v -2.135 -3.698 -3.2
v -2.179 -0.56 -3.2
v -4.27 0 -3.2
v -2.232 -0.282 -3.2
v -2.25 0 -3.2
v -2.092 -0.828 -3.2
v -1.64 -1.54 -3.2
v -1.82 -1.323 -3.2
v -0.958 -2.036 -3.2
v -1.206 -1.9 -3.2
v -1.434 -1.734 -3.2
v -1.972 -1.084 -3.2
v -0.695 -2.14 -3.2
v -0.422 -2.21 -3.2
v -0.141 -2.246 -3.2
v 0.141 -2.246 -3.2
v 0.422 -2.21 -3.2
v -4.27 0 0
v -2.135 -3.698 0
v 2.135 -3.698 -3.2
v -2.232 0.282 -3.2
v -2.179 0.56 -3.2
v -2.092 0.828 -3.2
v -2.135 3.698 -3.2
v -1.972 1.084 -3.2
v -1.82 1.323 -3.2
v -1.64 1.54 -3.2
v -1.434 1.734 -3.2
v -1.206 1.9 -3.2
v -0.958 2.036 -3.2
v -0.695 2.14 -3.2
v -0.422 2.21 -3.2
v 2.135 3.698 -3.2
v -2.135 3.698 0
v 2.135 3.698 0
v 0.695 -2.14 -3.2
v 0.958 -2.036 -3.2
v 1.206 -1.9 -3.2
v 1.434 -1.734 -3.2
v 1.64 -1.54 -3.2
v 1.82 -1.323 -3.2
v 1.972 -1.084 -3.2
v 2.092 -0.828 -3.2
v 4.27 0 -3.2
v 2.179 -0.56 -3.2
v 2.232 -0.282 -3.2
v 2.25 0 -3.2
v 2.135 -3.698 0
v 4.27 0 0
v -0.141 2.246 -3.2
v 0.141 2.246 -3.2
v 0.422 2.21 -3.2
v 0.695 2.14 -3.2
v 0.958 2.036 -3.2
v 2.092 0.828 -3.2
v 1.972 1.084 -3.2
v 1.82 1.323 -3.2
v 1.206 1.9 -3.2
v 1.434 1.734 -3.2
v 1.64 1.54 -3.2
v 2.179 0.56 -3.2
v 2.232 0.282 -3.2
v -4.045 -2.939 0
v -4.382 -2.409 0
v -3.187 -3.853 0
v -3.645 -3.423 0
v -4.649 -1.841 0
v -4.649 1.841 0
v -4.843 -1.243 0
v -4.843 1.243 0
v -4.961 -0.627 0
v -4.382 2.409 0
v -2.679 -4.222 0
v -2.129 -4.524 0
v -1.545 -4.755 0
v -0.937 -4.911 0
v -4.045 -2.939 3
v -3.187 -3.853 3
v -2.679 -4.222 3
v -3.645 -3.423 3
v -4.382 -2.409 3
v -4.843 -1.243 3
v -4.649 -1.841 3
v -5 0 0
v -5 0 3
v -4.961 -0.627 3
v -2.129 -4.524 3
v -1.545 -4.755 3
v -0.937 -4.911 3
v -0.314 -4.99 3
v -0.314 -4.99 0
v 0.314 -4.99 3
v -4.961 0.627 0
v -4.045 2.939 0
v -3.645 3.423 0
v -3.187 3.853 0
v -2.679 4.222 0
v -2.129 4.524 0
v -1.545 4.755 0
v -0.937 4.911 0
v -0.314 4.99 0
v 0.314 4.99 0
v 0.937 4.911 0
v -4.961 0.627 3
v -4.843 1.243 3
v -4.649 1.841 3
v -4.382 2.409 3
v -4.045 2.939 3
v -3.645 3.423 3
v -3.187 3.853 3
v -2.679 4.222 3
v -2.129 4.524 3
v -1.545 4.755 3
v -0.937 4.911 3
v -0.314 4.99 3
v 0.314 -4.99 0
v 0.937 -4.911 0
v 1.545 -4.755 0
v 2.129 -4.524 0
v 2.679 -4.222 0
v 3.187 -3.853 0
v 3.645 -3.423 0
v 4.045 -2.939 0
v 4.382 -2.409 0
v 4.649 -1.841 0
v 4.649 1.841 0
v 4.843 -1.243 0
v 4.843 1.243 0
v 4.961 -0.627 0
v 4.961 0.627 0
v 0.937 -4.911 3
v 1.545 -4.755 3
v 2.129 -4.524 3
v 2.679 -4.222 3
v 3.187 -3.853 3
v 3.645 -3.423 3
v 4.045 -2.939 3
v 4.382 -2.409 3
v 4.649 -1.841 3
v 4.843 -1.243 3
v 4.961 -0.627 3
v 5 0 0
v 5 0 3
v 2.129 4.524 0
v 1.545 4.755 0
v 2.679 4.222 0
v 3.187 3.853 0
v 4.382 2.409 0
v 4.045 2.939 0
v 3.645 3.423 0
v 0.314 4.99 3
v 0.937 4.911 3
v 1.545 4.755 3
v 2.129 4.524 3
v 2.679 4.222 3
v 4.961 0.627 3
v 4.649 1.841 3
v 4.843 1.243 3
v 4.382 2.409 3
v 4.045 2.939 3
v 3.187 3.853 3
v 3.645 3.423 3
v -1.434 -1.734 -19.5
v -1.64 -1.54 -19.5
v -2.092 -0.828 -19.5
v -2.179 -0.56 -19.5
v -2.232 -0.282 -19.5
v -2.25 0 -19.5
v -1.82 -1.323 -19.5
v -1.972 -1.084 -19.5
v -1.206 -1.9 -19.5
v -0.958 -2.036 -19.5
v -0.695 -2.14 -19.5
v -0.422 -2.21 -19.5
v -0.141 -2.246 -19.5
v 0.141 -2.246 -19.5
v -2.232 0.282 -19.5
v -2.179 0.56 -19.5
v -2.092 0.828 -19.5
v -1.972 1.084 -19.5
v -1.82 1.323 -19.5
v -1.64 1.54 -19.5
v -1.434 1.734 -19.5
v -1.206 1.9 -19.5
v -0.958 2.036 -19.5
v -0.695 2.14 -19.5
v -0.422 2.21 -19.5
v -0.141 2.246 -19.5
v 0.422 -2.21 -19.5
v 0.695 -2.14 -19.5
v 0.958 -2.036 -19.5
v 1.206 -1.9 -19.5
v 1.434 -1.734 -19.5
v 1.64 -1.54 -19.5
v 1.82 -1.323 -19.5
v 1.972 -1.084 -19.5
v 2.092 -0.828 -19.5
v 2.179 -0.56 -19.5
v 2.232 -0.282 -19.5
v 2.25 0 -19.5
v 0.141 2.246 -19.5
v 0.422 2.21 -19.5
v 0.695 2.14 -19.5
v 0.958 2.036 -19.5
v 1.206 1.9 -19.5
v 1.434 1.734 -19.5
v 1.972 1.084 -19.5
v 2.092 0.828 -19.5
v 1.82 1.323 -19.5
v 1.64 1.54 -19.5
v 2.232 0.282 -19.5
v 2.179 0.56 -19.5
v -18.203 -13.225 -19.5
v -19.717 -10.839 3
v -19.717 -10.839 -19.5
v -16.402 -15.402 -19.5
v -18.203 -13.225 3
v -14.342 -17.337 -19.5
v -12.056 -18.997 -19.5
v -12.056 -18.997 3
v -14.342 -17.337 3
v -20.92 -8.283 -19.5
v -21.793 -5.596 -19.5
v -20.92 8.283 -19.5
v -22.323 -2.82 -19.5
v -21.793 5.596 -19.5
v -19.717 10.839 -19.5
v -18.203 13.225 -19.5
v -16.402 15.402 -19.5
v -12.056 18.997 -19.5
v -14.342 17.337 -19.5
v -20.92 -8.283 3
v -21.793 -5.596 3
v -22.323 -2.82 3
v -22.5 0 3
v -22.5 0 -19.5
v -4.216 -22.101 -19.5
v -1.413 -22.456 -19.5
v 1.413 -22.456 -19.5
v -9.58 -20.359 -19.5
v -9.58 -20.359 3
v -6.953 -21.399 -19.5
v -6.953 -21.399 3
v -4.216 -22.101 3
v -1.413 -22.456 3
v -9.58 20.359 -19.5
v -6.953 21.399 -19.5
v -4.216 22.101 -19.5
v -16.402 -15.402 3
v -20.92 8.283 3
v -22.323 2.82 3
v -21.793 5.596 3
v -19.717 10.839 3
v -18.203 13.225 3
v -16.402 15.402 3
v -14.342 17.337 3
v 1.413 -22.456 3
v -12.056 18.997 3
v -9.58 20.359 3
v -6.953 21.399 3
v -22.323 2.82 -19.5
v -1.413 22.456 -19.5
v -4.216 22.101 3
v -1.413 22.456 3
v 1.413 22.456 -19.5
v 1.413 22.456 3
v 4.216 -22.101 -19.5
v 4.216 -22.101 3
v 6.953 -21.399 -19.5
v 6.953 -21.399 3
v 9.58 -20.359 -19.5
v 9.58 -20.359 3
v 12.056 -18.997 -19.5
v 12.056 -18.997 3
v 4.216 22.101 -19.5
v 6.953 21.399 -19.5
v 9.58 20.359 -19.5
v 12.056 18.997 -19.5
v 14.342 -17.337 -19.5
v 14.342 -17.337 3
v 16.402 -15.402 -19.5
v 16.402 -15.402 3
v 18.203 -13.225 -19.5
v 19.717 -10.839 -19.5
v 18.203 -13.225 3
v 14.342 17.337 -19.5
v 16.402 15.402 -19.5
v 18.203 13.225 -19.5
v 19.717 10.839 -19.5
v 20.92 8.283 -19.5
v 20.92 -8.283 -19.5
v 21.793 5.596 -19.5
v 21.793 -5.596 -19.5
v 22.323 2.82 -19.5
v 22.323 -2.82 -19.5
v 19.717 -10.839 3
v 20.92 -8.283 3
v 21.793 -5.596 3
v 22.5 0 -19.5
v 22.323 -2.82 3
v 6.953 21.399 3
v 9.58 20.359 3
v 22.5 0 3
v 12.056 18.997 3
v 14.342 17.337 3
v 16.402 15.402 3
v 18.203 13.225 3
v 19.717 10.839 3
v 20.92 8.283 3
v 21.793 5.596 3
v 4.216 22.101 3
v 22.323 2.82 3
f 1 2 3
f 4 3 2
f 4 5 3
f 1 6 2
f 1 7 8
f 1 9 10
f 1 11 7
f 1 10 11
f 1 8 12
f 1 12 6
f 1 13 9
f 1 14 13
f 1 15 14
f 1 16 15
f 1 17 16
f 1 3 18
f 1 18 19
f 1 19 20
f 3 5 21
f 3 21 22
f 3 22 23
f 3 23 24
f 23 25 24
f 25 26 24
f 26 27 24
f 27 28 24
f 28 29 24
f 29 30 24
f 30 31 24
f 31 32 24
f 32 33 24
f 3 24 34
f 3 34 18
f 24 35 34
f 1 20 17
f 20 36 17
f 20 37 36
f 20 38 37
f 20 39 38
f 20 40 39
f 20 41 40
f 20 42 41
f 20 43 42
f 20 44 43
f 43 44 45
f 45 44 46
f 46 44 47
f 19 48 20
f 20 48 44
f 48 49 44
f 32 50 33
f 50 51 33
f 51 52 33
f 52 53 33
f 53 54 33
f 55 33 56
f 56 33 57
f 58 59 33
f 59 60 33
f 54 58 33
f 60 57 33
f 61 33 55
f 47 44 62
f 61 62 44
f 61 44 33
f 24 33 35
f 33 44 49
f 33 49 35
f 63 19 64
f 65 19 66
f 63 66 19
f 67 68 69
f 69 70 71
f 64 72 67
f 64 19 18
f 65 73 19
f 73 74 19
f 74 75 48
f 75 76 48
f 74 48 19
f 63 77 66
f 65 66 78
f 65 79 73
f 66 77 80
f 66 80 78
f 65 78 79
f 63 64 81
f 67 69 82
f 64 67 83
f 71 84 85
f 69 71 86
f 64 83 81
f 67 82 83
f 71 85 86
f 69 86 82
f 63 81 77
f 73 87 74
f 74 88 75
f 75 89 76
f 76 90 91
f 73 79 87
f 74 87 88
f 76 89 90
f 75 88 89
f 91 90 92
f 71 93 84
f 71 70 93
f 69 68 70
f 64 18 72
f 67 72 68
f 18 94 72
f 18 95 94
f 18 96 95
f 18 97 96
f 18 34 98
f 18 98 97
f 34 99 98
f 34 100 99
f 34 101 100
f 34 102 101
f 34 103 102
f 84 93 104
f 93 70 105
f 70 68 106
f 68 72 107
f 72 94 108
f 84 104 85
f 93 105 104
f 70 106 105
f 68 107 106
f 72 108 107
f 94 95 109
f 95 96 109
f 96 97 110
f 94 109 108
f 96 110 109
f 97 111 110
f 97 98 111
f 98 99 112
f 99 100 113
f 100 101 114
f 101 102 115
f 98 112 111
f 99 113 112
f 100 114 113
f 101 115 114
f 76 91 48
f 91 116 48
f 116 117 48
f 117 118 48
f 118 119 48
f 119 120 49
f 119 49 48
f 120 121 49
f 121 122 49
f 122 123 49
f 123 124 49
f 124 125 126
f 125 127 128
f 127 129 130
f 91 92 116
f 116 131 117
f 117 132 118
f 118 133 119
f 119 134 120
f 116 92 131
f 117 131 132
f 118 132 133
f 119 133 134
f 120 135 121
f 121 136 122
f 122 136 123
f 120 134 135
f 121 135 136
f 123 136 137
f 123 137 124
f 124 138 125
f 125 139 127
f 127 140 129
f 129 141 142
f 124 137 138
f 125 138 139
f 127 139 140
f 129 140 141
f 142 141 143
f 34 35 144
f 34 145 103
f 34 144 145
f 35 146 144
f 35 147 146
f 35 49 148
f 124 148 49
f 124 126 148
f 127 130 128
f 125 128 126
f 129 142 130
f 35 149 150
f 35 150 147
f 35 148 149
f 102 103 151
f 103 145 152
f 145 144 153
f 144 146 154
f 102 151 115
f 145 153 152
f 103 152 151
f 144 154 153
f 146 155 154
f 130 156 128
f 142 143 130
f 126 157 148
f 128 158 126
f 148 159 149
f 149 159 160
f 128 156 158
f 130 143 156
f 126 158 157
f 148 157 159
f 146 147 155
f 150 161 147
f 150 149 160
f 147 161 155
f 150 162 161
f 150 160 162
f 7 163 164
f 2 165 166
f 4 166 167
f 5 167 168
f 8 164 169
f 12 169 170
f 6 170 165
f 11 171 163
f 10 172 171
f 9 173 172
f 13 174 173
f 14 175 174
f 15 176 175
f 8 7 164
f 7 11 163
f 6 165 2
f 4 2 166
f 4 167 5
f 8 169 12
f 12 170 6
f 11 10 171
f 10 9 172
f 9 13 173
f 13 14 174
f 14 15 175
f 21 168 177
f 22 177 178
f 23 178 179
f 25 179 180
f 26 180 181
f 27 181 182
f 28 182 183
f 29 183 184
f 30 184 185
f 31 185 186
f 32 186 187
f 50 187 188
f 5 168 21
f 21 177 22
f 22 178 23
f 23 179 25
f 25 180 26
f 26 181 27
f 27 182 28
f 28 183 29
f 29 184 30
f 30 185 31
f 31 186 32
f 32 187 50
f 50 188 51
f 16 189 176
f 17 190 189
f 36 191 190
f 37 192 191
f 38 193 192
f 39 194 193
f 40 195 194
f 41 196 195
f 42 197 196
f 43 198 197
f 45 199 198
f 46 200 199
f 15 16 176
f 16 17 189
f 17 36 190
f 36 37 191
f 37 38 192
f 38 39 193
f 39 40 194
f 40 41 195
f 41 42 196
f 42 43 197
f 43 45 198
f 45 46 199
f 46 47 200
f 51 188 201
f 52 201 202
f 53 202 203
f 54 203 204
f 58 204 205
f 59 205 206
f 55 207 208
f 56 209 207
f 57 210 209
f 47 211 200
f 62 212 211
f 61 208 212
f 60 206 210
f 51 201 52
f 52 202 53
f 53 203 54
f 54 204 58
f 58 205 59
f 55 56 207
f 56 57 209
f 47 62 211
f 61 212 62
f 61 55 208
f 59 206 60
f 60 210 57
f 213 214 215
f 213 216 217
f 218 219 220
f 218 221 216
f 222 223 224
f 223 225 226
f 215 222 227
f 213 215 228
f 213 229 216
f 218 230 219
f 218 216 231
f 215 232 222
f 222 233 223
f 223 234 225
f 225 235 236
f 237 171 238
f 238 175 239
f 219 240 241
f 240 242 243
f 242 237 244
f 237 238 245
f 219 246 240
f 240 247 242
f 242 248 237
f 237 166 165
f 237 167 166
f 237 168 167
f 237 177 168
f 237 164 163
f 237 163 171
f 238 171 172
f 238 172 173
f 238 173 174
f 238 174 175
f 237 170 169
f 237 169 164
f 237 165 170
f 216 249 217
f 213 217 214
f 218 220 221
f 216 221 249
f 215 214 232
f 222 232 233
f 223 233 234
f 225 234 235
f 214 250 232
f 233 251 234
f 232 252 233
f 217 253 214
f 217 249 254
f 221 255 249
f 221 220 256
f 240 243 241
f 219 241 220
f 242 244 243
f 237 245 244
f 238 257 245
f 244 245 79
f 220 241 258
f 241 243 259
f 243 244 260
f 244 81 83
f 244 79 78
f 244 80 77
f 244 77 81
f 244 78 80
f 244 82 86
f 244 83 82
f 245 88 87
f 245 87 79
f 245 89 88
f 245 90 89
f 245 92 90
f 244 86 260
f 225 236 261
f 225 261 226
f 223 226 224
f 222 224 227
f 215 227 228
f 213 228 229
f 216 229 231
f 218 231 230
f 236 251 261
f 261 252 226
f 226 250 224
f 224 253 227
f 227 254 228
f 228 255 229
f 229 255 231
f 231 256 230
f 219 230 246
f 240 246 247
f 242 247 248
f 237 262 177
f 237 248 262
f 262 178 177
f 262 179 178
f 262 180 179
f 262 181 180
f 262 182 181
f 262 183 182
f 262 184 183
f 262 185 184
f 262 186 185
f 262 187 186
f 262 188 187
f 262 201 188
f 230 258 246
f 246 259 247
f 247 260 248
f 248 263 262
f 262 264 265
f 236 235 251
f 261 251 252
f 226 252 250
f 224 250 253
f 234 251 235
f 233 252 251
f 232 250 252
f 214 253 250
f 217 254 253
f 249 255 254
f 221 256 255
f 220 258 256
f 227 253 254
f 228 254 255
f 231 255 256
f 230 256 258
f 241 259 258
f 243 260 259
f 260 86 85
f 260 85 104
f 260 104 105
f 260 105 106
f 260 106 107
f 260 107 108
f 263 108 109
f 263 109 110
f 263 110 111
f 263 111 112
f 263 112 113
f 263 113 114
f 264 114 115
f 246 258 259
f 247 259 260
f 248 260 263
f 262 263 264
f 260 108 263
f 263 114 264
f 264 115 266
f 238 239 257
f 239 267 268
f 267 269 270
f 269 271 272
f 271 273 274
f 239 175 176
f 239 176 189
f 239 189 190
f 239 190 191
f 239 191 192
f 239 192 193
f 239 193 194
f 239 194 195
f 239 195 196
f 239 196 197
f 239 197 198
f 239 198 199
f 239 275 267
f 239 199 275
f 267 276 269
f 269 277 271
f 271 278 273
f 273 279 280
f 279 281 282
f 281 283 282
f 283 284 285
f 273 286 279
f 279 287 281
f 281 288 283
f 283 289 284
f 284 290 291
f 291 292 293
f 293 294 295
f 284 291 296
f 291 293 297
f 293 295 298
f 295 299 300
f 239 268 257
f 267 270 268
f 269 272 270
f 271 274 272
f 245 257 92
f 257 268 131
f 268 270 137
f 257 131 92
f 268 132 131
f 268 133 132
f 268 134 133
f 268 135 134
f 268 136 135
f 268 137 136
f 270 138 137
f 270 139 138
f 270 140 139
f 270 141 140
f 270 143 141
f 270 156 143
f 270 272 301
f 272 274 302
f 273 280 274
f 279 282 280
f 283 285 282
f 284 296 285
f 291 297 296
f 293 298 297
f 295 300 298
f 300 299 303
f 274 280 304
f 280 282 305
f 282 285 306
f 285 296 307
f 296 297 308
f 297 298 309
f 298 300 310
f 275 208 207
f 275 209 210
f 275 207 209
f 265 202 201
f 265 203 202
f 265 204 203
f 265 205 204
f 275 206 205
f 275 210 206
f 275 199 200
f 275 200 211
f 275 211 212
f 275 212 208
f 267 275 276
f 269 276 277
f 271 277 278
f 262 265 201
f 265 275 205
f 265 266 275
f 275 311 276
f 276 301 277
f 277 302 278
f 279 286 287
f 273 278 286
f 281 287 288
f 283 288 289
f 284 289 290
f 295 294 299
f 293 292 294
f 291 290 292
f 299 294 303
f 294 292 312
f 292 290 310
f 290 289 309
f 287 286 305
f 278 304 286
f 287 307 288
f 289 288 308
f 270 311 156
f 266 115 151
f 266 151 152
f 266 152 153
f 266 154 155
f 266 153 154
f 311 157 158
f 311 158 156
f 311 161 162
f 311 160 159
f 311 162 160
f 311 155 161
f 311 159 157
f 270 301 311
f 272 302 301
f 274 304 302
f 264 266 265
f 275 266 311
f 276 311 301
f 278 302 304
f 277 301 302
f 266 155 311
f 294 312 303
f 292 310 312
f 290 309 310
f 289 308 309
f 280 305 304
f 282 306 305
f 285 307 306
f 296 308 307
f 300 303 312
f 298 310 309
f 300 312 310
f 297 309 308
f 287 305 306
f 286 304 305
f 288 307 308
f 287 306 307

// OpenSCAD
$fn = 50;

difference() {
	union() {
		translate(v = [0, 0, -19.5]) {
			cylinder(h = 22.5, r = 22.5);
		}
	}
	union() {
		translate(v = [0, 0, 0]) {
			rotate(a = [0, 0, 0]) {
				difference() {
					union() {
						translate(v = [0, 0, -3.2]) {
							linear_extrude(height = 3.2) {
								polygon(points = [[4.2698, 0.0], [2.1349000000000005, 3.697755269078796], [-2.134899999999999, 3.6977552690787965], [-4.2698, 5.228996902999369e-16], [-2.134900000000002, -3.6977552690787956], [2.1348999999999974, -3.697755269078798]]);
							}
						}
					}
					union();
				}
			}
		}
		#cylinder(h = 3, r = 5.0);
		#translate(v = [0, 0, -100.0]) {
			cylinder(h = 200, r = 2.25);
		}
	}
}
